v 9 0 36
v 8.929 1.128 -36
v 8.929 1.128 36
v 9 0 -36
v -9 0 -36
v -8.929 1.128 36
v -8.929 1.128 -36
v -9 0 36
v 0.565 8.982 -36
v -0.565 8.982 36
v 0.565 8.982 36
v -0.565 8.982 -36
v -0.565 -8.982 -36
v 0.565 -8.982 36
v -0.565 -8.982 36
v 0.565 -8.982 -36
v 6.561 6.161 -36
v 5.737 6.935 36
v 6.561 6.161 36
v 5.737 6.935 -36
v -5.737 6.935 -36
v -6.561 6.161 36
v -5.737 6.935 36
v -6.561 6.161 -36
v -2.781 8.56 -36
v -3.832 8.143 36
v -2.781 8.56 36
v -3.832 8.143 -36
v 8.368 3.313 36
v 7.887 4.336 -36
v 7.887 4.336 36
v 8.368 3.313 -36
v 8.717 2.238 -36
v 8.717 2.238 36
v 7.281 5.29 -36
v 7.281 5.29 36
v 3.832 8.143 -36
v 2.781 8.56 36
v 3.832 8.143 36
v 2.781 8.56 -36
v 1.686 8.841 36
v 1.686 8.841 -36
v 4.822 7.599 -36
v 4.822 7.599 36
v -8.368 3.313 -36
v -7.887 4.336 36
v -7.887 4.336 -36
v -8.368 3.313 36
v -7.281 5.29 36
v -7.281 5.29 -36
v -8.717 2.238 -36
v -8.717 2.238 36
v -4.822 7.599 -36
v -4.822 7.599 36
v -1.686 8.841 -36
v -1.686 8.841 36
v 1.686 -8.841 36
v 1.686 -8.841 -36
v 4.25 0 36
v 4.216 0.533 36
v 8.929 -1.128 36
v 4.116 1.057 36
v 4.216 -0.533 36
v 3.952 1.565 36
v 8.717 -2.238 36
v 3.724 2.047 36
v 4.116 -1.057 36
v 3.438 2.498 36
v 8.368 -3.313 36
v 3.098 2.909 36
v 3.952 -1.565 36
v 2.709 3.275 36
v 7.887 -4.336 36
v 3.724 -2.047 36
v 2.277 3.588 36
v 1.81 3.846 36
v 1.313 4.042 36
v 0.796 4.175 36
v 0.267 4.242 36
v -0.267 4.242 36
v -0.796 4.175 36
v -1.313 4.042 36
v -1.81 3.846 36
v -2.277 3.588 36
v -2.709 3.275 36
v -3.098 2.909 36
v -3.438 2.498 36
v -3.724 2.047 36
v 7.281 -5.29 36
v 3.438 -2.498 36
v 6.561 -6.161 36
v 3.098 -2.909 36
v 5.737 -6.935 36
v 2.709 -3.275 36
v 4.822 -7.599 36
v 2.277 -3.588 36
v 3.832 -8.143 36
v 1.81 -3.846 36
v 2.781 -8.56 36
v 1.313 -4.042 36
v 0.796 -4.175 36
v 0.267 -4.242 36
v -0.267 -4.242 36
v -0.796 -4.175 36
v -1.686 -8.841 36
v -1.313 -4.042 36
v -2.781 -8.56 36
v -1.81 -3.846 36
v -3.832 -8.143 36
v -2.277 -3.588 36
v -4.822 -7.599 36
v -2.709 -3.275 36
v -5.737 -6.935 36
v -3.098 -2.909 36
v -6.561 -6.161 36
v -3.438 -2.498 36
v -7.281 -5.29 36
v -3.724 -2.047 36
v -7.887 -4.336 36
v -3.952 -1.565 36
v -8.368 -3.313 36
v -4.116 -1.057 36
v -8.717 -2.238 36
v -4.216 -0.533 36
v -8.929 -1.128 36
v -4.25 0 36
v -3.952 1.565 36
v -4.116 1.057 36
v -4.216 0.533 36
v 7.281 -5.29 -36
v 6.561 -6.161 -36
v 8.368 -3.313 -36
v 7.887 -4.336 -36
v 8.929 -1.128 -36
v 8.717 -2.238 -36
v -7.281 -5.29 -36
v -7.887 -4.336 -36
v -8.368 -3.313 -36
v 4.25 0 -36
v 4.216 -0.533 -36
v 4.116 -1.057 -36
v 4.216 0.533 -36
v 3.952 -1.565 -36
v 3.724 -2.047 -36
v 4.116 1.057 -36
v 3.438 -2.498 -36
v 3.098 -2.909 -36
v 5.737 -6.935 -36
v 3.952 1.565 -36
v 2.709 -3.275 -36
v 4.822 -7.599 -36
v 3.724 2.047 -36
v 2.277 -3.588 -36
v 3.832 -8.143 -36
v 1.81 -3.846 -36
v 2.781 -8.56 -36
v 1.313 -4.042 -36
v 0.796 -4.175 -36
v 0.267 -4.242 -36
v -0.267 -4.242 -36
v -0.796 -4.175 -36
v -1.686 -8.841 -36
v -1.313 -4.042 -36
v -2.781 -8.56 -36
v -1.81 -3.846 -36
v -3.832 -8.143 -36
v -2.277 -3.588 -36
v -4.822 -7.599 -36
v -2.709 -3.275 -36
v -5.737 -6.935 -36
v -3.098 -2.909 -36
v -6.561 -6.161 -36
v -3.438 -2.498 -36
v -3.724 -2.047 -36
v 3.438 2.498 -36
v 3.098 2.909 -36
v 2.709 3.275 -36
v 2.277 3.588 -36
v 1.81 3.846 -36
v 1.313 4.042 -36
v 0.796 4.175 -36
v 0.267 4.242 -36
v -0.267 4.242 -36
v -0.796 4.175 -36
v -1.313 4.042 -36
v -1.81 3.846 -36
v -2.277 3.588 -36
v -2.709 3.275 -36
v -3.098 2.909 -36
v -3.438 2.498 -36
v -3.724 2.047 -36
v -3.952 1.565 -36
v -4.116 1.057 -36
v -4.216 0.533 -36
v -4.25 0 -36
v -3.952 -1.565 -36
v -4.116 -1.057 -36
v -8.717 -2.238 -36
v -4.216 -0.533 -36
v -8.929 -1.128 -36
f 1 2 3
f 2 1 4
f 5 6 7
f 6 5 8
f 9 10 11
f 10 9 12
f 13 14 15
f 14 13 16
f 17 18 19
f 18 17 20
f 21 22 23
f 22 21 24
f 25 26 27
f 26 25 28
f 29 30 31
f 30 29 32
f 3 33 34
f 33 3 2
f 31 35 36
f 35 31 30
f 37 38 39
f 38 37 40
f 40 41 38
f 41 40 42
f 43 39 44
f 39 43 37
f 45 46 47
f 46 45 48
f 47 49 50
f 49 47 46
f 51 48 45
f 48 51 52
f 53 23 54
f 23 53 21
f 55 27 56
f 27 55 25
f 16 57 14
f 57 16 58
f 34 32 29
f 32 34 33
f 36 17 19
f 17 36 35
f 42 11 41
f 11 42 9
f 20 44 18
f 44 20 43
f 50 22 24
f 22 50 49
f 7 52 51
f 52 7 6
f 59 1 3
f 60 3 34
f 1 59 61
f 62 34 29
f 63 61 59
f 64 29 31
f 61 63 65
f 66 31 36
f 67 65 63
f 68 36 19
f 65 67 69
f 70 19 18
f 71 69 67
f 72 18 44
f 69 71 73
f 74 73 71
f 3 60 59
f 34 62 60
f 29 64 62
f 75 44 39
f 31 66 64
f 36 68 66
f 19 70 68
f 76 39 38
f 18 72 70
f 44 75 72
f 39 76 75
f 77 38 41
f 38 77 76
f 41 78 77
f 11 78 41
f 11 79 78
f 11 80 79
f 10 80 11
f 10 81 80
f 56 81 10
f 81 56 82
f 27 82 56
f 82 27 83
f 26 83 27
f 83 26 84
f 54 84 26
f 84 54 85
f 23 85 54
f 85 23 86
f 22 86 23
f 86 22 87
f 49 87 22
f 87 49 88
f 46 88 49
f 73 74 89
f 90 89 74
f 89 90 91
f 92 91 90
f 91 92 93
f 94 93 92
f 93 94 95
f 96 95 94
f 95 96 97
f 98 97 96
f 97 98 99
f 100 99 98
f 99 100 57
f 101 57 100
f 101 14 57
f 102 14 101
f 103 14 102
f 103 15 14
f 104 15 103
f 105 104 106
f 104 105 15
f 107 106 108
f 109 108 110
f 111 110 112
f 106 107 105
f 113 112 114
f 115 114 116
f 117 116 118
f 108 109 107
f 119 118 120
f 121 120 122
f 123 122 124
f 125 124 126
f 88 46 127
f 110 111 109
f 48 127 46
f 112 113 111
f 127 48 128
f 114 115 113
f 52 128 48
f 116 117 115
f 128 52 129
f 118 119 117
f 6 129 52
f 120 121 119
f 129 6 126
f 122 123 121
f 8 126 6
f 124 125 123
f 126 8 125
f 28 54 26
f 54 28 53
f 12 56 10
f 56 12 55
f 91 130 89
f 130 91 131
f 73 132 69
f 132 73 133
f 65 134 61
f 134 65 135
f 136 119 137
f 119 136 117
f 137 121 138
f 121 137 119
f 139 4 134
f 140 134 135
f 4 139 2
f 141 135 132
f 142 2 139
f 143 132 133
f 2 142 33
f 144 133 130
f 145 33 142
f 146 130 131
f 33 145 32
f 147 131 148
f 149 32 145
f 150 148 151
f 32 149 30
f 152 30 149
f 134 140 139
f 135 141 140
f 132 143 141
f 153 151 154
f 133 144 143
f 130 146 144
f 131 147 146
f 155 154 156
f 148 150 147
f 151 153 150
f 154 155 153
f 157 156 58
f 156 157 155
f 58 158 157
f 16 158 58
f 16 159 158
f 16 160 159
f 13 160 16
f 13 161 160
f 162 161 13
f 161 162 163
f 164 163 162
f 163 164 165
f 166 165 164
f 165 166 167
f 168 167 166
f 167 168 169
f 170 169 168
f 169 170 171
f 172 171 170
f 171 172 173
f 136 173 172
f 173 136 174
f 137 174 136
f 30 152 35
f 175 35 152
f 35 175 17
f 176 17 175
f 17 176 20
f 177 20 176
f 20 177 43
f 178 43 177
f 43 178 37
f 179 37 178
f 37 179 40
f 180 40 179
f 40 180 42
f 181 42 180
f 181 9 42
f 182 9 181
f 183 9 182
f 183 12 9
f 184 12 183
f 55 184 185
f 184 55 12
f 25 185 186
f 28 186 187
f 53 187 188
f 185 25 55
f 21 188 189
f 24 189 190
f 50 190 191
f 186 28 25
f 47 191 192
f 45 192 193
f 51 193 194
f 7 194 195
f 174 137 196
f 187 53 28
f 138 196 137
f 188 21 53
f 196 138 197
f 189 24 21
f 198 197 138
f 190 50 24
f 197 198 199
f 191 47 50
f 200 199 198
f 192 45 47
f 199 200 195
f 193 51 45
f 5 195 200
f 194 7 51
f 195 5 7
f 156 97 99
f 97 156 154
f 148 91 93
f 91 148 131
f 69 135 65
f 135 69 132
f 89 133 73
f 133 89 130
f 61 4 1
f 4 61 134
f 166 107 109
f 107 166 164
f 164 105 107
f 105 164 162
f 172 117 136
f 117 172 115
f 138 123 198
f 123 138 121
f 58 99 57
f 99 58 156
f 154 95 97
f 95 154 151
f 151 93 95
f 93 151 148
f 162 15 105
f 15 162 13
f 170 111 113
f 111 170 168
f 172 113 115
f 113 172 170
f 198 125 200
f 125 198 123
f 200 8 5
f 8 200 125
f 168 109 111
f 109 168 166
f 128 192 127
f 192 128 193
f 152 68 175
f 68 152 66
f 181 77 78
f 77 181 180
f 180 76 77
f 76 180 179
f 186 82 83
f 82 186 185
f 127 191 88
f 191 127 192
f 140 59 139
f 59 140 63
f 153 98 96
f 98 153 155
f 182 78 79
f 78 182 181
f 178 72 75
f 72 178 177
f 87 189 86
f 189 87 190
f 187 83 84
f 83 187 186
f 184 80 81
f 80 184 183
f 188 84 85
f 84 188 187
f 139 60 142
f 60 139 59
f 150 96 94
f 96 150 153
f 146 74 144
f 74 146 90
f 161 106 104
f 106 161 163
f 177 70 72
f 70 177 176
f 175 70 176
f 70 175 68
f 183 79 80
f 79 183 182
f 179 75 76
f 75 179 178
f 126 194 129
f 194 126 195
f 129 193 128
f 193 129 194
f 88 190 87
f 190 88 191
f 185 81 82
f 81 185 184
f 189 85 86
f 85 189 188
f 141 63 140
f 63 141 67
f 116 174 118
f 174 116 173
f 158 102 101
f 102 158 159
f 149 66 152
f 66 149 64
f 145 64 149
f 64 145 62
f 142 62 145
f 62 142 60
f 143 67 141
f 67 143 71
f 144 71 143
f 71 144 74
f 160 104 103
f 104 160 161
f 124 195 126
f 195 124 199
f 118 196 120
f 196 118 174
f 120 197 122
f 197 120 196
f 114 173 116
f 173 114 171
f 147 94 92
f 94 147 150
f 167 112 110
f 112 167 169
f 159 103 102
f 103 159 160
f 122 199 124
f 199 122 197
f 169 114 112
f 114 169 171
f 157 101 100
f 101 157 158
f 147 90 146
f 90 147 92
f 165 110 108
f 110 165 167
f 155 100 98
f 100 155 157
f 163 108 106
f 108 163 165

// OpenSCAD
$fn = 50;


difference() {
	union() {
		translate(v = [0, 0, -36.0000000000]) {
			cylinder(h = 72, r = 9.0000000000);
		}
	}
	union() {
		translate(v = [0, 0, -100.0000000000]) {
			cylinder(h = 200, r = 4.2500000000);
		}
	}
}
